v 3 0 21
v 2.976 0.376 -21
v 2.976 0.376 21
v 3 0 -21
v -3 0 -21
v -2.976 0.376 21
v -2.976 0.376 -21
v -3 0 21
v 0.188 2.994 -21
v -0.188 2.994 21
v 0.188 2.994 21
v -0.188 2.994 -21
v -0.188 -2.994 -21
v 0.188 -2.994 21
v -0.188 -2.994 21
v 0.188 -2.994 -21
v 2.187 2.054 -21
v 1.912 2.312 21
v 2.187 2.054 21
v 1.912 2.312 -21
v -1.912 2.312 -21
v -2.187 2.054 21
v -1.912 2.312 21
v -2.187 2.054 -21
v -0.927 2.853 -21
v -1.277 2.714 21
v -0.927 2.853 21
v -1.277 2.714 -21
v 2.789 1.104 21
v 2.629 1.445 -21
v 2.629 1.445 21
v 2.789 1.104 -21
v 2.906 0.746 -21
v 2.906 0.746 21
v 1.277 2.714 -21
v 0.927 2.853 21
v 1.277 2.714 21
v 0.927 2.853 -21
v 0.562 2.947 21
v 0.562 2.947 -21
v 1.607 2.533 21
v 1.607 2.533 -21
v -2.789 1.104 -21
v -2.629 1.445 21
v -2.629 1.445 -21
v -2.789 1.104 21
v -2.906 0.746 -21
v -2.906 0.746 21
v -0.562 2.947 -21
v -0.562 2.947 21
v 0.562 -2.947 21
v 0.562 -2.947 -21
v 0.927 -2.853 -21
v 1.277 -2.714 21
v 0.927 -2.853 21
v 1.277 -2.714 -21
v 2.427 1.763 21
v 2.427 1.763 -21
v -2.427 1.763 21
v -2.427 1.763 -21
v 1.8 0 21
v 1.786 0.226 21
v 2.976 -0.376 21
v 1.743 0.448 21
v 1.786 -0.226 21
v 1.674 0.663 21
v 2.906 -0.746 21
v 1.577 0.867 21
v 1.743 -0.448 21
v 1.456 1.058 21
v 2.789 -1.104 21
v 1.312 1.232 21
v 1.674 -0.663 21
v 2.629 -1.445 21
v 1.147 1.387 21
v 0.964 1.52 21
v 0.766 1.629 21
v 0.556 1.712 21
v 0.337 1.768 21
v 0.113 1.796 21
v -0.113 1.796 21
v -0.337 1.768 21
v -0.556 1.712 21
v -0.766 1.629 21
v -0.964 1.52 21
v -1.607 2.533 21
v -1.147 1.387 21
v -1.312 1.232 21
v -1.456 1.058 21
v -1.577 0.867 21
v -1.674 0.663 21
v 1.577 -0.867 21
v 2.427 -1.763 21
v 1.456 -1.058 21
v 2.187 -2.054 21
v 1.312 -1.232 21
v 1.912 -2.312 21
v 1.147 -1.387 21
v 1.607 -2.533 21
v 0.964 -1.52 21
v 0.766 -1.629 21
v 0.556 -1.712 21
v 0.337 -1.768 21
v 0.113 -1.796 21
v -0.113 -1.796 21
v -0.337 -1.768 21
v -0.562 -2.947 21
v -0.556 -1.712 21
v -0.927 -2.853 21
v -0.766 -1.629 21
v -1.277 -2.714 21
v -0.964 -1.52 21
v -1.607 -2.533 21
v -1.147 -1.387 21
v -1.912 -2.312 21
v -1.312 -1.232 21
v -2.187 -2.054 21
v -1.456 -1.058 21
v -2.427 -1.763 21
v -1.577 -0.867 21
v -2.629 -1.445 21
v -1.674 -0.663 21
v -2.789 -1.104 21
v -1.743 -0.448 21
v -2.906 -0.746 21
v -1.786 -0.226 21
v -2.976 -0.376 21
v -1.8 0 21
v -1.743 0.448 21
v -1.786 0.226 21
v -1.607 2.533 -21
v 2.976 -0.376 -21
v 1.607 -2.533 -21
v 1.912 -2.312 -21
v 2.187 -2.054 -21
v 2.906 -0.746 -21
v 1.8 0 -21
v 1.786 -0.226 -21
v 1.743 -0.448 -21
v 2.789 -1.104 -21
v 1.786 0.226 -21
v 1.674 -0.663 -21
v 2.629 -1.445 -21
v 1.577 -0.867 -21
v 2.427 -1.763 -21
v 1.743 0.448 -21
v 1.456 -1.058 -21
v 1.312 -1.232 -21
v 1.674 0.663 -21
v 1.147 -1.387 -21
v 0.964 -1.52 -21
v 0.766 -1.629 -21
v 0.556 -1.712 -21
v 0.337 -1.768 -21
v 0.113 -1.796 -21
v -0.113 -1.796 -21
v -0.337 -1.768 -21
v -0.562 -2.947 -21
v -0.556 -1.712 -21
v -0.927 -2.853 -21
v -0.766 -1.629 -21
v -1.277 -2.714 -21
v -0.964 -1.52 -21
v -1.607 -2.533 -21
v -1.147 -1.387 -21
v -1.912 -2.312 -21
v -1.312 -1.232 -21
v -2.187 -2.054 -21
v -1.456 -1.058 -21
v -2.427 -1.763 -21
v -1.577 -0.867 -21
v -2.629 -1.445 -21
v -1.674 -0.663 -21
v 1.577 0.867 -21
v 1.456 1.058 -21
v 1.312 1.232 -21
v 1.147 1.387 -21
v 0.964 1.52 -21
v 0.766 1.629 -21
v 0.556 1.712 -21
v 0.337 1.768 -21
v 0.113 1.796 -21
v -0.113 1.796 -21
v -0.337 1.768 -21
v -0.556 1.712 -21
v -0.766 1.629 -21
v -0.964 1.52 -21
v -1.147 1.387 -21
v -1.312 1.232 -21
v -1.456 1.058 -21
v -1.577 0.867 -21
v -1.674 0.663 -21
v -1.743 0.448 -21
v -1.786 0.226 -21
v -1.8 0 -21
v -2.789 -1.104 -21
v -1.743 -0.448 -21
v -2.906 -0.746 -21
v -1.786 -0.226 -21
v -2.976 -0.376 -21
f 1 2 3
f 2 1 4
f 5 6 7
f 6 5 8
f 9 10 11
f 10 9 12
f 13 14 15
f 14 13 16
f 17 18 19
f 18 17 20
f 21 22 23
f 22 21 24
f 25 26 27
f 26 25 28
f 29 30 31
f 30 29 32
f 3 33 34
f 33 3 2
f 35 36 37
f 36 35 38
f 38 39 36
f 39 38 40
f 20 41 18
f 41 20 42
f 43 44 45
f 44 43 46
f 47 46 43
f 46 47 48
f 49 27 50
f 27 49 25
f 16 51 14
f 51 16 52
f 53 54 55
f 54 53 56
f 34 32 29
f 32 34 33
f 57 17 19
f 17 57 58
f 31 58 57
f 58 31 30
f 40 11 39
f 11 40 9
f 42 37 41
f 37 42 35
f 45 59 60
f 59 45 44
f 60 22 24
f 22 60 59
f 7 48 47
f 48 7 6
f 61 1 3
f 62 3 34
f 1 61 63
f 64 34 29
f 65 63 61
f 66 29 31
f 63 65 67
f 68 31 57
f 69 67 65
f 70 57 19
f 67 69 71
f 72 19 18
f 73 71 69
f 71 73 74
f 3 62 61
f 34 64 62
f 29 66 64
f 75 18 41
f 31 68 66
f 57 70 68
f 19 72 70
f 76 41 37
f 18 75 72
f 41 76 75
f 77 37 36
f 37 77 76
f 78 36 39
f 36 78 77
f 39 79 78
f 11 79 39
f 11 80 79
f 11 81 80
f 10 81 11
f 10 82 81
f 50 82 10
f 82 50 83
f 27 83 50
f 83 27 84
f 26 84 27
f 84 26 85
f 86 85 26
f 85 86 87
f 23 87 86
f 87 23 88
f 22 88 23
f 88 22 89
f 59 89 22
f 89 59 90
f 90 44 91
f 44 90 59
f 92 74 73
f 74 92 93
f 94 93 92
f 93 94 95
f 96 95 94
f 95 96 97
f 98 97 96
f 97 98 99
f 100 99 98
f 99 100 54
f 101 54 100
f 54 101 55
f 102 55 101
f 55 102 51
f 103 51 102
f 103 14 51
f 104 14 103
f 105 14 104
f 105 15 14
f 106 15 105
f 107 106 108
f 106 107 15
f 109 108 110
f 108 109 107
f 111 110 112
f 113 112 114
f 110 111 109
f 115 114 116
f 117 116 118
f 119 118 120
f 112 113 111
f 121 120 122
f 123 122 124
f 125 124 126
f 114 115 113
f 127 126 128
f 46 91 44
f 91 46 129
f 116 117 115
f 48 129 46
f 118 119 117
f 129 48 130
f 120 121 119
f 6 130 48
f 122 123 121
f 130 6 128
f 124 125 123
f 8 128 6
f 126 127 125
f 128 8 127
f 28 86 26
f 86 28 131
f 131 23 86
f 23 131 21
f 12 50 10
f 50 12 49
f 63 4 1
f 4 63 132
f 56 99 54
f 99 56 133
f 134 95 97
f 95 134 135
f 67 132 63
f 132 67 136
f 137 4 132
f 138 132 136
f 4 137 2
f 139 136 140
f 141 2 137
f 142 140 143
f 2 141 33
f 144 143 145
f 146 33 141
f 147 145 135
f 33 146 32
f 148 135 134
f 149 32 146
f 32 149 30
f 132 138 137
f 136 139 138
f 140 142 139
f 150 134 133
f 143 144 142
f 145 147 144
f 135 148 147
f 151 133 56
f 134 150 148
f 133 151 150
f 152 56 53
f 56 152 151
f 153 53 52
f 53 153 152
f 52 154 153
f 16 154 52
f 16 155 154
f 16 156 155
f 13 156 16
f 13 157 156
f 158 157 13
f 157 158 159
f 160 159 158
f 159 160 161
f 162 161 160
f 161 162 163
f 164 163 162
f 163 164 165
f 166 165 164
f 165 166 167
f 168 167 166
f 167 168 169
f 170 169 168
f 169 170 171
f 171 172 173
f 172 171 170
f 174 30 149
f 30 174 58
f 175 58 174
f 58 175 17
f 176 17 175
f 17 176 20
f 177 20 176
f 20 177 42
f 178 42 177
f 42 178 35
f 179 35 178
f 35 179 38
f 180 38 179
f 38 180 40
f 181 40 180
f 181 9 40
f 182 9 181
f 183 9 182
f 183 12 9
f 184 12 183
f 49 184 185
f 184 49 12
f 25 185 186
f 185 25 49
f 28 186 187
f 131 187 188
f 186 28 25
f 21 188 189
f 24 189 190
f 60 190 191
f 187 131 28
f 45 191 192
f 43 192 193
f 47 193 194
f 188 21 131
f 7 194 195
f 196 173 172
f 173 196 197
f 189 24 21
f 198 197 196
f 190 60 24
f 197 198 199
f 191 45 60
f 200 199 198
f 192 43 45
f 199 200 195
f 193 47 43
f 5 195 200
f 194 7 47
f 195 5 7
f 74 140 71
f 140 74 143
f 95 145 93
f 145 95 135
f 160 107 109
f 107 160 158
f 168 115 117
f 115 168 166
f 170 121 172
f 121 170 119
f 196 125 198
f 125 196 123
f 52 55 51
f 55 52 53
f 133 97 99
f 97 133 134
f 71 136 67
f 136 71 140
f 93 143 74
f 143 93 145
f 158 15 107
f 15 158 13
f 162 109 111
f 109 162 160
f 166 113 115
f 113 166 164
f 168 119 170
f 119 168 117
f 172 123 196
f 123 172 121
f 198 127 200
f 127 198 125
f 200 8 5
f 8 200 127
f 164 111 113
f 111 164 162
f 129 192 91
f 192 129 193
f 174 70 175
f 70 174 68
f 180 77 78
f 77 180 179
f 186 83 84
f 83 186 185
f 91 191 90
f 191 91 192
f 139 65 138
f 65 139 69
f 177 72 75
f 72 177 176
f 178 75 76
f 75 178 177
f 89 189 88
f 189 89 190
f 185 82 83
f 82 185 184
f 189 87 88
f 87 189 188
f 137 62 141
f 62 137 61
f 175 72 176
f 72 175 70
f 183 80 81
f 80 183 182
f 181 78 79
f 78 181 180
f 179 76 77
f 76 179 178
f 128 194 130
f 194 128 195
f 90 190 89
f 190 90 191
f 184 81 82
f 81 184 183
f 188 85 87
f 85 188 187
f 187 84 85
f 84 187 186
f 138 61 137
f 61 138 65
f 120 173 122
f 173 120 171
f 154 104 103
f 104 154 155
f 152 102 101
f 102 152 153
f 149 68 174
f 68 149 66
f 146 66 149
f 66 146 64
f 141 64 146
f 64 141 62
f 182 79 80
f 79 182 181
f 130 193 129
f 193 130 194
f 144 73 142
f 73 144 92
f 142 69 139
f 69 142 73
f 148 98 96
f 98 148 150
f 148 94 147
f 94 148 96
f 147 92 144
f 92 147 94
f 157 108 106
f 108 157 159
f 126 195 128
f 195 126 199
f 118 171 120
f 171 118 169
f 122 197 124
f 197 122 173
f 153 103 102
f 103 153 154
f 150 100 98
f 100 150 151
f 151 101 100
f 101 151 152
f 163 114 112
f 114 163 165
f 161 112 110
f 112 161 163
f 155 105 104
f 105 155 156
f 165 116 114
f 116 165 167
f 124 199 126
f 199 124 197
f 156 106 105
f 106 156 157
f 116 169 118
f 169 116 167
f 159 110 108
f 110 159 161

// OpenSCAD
$fn = 50;


difference() {
	union() {
		translate(v = [0, 0, -21.0000000000]) {
			cylinder(h = 42, r = 3.0000000000);
		}
	}
	union() {
		translate(v = [0, 0, -100.0000000000]) {
			cylinder(h = 200, r = 1.8000000000);
		}
	}
}
